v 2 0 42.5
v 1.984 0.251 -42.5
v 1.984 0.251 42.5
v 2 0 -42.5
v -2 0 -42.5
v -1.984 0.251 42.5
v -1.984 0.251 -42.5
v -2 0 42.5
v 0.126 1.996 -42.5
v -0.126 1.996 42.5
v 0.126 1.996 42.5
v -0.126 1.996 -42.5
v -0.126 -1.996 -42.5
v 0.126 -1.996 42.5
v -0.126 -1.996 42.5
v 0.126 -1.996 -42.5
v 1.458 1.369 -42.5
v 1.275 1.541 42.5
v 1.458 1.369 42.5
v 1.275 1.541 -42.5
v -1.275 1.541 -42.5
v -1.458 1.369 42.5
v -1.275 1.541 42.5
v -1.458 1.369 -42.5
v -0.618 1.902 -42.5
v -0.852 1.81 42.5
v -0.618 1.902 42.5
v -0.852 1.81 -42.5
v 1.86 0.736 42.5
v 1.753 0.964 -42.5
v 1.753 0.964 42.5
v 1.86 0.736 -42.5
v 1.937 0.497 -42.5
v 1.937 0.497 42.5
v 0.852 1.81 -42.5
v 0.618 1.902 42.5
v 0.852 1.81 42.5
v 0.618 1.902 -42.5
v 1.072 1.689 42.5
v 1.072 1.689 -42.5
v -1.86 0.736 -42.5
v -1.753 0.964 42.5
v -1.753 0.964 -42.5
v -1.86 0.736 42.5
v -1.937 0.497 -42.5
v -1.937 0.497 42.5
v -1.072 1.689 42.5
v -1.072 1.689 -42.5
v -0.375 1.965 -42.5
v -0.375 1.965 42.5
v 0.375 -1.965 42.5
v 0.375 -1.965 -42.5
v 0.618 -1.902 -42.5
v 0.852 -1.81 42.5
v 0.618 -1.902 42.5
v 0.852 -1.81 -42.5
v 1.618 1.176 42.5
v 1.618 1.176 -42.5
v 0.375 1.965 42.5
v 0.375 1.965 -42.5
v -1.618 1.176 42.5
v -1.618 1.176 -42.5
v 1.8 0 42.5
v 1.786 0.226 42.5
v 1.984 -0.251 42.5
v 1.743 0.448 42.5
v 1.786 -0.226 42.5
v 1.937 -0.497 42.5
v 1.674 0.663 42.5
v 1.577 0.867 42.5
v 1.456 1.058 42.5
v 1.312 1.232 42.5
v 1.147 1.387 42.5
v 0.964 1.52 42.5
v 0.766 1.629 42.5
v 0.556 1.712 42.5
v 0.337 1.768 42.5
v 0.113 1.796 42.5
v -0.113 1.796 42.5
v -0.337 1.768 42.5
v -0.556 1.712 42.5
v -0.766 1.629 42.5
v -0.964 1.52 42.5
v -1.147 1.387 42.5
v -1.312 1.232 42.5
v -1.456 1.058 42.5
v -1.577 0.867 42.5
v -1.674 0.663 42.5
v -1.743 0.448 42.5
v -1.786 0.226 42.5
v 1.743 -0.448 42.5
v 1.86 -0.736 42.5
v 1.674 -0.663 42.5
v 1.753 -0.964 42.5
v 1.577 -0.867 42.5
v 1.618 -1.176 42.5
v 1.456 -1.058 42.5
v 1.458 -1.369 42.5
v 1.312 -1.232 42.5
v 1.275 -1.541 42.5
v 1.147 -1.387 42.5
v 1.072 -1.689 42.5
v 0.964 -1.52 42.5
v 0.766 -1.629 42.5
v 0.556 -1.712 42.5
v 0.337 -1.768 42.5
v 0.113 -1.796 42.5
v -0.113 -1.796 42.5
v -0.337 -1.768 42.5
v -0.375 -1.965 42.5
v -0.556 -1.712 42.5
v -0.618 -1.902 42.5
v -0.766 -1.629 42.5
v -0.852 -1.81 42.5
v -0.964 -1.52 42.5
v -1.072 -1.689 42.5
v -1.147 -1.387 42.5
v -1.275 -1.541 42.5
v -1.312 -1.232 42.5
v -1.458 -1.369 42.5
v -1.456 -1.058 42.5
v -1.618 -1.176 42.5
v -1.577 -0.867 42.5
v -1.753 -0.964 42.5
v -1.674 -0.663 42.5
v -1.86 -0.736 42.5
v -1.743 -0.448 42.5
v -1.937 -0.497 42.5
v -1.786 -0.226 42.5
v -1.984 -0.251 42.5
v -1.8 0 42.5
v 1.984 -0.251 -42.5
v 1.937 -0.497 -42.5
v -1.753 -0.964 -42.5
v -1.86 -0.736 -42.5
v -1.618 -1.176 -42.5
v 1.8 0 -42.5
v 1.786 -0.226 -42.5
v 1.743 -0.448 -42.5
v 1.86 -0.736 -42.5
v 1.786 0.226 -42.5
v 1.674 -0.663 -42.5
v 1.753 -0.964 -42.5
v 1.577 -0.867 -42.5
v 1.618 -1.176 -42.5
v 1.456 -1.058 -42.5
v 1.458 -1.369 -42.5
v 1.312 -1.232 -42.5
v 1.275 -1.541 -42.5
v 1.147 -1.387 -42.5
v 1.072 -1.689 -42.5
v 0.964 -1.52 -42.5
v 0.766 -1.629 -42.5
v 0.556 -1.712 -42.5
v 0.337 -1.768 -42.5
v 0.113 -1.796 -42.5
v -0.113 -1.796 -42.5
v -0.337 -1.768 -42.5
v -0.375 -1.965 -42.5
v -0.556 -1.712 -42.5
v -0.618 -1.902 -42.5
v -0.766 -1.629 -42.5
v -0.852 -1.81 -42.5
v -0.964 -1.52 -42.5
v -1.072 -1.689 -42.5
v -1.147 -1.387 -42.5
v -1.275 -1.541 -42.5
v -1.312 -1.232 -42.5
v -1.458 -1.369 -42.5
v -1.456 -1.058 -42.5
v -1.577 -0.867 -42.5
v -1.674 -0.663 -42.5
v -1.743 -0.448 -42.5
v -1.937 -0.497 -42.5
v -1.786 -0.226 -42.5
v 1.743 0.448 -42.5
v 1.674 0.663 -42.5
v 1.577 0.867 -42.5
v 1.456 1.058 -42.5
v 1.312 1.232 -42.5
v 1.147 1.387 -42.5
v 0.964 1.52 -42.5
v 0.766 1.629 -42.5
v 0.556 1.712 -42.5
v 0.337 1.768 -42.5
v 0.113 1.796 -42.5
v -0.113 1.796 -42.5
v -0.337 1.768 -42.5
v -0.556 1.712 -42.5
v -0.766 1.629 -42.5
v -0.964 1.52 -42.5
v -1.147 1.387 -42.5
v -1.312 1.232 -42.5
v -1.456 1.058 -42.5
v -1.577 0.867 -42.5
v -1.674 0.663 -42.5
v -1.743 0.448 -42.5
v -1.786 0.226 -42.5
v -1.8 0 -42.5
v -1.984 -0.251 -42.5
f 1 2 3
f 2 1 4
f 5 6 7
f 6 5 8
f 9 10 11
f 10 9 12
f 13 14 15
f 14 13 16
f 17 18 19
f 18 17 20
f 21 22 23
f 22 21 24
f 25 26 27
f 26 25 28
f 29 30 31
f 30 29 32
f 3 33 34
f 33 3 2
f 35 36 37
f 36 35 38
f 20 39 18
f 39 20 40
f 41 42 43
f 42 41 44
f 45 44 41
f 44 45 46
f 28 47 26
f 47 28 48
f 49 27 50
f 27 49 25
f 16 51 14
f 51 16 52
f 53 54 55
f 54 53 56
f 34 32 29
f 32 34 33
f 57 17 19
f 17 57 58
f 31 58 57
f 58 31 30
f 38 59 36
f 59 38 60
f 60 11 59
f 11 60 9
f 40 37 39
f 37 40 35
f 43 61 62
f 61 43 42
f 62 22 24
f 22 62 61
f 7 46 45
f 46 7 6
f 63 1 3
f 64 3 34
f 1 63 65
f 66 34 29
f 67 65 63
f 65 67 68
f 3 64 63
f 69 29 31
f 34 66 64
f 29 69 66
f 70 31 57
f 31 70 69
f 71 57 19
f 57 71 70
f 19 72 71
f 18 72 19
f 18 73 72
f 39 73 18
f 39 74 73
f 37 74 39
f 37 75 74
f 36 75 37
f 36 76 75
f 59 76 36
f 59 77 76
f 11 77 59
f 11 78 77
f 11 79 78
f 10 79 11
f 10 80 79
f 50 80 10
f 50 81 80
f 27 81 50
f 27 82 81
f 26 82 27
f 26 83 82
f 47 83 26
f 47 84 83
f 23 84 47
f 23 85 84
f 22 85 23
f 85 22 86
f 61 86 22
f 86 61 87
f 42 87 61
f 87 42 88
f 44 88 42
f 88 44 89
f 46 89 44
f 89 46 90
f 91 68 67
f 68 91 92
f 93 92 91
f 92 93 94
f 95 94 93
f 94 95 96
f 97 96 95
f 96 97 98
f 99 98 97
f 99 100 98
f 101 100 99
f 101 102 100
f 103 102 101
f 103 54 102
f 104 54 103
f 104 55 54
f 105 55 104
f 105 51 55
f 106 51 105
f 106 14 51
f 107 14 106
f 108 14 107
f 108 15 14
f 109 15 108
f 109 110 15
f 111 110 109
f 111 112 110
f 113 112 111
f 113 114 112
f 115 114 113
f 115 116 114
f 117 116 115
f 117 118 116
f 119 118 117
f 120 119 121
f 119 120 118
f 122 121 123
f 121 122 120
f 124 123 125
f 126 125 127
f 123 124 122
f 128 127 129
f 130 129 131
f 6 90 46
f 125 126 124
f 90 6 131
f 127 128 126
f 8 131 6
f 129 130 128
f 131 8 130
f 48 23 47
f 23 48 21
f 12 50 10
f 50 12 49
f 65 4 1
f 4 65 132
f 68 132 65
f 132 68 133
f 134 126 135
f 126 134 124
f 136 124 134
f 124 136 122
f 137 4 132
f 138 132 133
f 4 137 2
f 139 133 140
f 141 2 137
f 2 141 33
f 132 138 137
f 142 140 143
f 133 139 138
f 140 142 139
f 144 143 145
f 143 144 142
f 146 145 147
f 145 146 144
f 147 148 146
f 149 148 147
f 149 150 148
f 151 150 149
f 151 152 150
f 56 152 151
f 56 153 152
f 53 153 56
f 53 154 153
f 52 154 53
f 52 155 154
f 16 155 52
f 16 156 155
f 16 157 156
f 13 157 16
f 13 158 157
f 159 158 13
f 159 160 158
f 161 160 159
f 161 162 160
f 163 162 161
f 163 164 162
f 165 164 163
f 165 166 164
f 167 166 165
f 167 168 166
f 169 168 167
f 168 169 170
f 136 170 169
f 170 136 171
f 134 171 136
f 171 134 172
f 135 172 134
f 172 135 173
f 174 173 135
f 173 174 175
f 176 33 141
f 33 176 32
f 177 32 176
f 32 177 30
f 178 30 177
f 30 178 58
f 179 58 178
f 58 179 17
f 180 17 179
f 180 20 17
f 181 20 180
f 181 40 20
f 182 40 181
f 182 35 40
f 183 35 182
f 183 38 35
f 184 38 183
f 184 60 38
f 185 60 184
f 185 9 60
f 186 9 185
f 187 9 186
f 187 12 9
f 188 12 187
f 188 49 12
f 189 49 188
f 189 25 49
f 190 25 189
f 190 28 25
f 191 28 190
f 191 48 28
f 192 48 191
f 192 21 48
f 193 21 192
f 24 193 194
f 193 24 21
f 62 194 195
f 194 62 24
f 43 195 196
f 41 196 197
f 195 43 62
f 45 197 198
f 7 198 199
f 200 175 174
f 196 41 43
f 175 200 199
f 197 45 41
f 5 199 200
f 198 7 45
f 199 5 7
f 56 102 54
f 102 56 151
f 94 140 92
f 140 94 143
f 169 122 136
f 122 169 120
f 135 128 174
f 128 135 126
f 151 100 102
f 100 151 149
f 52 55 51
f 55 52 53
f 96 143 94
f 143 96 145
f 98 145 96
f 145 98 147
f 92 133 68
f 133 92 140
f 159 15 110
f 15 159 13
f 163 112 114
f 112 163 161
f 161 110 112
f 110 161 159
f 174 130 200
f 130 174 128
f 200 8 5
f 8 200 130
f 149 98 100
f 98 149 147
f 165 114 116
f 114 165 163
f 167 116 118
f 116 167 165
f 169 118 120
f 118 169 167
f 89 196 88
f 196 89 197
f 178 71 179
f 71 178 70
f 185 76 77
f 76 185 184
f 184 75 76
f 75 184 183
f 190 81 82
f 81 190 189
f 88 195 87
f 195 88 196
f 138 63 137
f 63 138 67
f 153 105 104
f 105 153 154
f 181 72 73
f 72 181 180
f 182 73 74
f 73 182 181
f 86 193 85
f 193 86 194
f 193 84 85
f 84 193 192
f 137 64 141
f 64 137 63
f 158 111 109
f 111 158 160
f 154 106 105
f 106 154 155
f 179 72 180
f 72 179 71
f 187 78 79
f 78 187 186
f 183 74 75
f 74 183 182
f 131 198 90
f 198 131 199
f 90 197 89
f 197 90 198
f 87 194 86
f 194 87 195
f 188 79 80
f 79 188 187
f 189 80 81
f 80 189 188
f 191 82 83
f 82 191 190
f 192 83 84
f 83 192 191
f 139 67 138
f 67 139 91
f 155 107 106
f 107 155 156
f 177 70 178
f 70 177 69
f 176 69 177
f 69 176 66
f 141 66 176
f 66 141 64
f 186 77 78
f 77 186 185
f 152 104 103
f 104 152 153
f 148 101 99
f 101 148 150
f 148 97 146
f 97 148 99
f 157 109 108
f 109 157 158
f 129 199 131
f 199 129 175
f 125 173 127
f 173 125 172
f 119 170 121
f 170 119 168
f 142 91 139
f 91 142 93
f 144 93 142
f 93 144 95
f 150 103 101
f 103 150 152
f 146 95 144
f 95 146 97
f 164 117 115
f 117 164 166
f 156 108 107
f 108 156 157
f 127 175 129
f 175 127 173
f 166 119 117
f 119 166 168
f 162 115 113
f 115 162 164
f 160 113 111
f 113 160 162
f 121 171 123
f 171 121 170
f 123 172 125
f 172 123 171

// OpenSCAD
$fn = 50;


difference() {
	union() {
		translate(v = [0, 0, -42.5000000000]) {
			cylinder(h = 85, r = 2.0000000000);
		}
	}
	union() {
		translate(v = [0, 0, -100.0000000000]) {
			cylinder(h = 200, r = 1.8000000000);
		}
	}
}
